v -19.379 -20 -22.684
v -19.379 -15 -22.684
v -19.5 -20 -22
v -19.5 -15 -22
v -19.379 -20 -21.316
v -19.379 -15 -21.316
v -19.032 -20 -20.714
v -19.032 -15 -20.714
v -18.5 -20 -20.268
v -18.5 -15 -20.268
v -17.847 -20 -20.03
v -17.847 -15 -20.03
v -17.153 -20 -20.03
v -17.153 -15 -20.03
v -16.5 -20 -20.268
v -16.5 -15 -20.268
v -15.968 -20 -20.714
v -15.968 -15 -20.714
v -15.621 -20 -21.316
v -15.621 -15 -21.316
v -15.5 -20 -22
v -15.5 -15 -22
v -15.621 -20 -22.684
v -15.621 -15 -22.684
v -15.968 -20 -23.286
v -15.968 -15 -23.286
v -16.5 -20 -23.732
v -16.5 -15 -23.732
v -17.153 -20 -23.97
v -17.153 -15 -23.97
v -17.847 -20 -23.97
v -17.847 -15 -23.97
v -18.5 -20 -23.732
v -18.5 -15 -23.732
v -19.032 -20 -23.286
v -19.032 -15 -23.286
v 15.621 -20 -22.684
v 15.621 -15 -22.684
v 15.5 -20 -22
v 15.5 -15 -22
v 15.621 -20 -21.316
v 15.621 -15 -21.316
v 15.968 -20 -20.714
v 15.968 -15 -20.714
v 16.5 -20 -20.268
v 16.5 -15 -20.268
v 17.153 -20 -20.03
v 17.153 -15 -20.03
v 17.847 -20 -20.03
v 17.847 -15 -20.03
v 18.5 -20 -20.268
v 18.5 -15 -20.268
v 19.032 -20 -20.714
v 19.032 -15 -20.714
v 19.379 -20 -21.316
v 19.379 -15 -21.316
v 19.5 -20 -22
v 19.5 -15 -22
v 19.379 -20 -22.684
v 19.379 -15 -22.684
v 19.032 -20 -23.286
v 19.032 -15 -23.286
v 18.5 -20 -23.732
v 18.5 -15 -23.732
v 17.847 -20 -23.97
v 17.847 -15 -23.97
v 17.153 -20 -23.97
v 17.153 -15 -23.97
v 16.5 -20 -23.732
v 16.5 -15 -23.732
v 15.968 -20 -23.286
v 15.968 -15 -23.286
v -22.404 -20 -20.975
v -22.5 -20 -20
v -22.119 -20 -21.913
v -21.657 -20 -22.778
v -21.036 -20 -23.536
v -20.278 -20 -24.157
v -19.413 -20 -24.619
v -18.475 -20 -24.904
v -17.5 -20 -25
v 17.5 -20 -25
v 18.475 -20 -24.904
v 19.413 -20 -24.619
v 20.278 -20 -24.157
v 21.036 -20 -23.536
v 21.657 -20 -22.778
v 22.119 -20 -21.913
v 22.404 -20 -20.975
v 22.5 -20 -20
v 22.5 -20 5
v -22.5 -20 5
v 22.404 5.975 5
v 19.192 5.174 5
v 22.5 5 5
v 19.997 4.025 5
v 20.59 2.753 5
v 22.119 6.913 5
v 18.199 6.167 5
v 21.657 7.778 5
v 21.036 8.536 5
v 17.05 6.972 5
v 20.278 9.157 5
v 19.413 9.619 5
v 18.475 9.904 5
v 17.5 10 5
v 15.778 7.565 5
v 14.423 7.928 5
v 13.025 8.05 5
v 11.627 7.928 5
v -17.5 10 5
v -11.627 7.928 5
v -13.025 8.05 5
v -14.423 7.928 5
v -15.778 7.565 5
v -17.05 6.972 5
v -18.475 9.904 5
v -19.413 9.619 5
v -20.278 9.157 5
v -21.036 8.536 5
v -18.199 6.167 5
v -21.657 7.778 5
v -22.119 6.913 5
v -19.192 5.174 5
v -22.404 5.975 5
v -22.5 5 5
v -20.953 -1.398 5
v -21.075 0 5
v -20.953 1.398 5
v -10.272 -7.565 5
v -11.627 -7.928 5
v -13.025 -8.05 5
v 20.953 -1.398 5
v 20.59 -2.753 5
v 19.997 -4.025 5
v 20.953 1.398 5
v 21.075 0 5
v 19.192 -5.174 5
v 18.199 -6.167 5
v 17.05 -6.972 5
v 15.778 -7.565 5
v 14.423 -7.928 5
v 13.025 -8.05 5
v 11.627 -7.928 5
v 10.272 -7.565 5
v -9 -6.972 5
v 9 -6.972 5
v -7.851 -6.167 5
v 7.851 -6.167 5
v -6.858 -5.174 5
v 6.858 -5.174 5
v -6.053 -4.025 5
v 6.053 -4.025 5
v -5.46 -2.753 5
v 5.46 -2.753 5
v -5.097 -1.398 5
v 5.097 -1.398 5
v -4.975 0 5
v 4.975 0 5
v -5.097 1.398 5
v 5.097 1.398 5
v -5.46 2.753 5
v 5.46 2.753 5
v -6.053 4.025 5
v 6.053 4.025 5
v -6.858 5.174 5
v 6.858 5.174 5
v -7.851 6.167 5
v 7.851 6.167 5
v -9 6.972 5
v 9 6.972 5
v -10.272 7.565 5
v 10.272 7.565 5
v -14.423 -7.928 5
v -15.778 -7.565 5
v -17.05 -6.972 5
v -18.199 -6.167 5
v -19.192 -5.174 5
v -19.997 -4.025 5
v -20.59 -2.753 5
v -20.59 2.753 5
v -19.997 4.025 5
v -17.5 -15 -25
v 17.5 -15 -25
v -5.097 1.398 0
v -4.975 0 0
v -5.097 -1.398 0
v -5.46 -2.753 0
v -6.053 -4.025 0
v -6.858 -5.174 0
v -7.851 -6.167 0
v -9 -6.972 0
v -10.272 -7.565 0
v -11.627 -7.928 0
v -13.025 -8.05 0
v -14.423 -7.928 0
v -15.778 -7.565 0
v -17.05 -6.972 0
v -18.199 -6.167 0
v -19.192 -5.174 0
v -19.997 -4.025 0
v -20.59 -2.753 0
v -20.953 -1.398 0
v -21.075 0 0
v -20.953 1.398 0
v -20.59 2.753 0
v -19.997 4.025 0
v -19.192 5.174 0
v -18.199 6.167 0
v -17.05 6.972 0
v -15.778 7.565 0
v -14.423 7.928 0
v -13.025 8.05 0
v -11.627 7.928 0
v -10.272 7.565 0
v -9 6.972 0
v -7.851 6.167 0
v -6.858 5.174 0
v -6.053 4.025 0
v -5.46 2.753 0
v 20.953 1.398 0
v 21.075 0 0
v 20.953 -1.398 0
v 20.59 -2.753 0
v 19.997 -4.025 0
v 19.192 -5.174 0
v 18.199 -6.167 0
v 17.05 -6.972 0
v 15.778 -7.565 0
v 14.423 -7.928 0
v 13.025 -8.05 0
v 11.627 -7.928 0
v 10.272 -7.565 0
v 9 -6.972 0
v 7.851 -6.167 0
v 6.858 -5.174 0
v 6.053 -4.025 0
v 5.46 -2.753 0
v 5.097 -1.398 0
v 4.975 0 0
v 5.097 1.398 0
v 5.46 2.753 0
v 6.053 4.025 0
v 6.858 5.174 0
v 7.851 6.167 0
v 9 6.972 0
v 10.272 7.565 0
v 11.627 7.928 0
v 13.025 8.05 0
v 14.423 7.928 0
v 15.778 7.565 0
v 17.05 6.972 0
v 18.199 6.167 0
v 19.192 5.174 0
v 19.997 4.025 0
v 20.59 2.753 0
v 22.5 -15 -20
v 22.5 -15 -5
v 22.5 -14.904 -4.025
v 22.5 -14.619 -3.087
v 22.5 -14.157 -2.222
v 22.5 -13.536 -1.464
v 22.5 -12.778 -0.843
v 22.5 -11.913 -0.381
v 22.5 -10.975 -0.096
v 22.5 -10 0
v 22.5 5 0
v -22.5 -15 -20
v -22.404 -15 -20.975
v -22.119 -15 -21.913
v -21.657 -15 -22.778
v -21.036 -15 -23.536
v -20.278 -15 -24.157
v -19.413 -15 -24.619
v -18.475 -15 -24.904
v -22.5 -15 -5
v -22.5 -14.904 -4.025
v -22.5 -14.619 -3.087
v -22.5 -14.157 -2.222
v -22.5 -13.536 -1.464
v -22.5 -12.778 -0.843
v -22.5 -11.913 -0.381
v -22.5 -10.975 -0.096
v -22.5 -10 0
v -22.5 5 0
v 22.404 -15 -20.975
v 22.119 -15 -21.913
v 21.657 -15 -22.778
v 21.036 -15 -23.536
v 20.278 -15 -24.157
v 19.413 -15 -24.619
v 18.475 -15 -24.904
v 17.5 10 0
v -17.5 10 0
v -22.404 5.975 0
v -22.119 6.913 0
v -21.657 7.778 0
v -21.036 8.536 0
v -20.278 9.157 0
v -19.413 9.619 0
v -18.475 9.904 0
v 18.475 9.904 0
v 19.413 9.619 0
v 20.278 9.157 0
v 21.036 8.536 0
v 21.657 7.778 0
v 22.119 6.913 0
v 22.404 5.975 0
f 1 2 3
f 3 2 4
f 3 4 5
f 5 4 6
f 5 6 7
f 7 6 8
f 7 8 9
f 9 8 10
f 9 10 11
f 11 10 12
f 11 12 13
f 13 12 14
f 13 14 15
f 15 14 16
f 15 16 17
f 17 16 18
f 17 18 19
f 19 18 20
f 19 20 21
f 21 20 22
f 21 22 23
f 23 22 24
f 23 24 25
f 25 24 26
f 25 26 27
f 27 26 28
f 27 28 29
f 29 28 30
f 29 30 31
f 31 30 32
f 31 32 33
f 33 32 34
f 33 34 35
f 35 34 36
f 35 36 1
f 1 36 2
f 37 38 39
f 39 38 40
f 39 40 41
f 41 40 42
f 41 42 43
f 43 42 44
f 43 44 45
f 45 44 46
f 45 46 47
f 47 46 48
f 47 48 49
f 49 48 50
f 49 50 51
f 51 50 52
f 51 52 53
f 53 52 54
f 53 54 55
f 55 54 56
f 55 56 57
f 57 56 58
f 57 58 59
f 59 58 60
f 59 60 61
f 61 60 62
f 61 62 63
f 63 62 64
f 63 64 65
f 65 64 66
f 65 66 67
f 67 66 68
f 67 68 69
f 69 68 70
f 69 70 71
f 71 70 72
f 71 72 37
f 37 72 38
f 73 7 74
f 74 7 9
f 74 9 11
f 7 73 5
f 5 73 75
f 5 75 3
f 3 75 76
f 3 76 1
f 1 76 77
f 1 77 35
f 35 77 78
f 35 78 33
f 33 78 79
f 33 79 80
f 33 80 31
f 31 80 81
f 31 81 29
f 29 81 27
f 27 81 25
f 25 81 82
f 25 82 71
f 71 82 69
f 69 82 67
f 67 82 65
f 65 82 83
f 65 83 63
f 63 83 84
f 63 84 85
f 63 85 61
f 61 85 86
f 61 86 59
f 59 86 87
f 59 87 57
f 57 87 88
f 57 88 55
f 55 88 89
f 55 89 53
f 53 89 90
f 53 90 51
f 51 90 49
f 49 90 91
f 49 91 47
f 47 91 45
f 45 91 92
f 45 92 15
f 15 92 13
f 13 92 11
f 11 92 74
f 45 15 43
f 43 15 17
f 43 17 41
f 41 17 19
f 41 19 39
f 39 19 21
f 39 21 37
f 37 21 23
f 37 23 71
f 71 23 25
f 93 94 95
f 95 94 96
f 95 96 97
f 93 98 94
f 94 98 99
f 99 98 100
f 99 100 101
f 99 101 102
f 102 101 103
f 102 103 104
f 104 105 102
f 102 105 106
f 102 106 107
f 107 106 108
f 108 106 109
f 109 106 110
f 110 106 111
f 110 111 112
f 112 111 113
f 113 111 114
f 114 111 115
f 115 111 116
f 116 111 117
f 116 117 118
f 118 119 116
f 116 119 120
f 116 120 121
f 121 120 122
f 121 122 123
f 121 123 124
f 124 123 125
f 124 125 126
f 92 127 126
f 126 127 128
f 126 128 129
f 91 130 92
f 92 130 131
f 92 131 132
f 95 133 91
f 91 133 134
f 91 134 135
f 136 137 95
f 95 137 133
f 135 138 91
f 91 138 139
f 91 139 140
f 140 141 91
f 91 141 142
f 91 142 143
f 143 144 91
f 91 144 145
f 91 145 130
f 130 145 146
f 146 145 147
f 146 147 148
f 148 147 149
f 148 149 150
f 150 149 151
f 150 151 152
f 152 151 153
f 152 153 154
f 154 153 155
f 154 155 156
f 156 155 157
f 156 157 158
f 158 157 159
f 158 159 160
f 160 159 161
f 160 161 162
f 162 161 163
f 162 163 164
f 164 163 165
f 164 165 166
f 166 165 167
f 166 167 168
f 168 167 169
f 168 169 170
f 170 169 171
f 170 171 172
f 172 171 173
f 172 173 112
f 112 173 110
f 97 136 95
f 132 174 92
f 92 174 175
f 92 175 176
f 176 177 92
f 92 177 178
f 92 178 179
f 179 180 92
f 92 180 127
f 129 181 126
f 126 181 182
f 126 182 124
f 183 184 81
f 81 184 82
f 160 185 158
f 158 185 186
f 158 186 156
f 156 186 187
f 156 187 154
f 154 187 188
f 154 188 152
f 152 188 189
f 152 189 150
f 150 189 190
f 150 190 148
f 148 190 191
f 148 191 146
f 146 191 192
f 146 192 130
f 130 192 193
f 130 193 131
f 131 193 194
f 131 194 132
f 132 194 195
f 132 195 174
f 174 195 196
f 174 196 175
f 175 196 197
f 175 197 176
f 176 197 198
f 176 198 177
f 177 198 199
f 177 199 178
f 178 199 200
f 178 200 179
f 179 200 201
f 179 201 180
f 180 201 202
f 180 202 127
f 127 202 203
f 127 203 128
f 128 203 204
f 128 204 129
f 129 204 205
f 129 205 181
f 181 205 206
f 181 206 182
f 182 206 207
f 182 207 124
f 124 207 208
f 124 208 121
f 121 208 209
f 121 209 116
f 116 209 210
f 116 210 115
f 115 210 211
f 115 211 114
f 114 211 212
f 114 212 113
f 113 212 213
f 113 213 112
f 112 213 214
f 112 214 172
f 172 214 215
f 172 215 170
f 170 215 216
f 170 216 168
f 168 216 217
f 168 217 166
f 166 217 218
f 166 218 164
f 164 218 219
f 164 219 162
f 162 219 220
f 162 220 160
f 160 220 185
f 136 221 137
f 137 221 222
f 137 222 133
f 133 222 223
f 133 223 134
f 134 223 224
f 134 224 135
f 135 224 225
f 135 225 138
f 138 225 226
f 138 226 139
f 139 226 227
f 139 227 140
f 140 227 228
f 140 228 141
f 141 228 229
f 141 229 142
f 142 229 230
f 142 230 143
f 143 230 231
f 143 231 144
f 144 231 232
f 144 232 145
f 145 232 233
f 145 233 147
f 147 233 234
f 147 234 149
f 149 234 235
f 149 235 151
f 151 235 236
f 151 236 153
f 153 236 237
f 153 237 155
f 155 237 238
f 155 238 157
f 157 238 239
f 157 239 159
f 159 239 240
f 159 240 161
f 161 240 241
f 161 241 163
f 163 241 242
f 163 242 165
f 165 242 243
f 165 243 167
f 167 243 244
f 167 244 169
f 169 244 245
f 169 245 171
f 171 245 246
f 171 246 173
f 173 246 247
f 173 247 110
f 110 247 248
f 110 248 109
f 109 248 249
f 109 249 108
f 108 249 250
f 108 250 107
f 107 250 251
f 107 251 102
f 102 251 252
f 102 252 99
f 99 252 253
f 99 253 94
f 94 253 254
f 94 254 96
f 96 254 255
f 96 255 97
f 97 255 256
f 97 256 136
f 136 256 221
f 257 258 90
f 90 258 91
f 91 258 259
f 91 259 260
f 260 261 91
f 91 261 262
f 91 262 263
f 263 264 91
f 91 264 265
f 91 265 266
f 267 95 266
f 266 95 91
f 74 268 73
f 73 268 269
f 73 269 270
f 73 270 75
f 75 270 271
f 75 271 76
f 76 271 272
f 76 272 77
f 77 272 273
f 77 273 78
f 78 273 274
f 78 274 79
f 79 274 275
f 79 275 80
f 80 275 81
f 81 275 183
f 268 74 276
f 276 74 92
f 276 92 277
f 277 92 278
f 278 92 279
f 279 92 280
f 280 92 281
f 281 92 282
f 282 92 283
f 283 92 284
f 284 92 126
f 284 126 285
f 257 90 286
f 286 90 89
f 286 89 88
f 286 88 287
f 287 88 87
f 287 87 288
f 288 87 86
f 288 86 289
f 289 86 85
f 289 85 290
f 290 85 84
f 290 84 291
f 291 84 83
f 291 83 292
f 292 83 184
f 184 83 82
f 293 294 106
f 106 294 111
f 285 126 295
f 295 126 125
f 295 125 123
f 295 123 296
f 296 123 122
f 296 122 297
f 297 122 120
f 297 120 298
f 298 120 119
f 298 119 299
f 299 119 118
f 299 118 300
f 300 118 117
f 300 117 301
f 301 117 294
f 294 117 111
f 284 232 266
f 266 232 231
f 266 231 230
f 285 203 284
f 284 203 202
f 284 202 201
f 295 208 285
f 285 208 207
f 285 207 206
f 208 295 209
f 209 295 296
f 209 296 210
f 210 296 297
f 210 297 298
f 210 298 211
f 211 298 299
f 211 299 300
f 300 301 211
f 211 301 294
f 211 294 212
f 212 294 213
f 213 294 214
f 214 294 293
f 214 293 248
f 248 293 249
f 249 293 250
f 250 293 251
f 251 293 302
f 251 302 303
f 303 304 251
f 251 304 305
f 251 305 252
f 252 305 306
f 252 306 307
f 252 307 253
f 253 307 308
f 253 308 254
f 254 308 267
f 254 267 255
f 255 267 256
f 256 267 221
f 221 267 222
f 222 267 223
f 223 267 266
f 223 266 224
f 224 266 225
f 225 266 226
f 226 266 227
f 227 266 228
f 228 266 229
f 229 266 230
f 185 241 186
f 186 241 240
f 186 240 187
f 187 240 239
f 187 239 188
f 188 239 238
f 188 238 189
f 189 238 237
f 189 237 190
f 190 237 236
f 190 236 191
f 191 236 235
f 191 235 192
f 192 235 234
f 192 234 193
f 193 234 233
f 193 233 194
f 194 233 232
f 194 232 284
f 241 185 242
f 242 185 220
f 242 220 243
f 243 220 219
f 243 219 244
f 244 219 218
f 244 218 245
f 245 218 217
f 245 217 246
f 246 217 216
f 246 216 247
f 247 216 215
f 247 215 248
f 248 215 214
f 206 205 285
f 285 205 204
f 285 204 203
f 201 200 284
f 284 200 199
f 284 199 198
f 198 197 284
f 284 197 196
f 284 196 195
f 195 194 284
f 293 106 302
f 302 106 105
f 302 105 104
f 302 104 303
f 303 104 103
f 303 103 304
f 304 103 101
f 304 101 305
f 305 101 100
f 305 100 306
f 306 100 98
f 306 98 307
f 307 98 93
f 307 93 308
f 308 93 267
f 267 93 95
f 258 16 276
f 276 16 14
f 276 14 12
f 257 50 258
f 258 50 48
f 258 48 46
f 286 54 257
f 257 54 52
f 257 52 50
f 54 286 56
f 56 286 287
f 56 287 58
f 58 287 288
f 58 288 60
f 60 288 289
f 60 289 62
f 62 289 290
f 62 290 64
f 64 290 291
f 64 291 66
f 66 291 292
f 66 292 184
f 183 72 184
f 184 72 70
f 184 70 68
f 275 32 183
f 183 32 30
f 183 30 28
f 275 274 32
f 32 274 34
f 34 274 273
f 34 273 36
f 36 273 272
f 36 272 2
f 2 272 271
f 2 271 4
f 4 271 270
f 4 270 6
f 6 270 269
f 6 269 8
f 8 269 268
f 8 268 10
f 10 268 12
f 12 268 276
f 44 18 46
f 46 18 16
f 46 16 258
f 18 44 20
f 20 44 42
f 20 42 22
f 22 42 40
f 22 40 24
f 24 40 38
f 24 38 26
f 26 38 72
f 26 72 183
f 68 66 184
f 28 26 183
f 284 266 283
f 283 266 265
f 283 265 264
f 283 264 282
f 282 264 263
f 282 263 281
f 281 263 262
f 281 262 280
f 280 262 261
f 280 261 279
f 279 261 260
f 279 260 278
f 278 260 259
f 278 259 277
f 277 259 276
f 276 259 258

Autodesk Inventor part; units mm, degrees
ref_plane "YZ Plane" through (0, 0, 0) normal (1, 0, 0) x (0, 1, 0)
ref_plane "XZ Plane" through (0, 0, 0) normal (0, 1, 0) x (-1, 0, 0)
ref_plane "XY Plane" through (0, 0, 0) normal (0, 0, 1) x (1, 0, 0)
sketch "Náčrt1" plane through (0, 0, 0) normal (0, 0, 1) x (1, 0, 0)
  circle A0 centre (13.025, 0) radius 8.05
  circle A1 centre (-13.025, 0) radius 8.05
  line L0 (22.5, 0) -> (22.5, 10)
  line L1 (22.5, 10) -> (-22.5, 10)
  line L2 (-22.5, 10) -> (-22.5, -20)
  line L3 (-22.5, -20) -> (22.5, -20)
  line L4 (22.5, -20) -> (22.5, 0)
  point P0 (0, 0)
  point P1 (0, 0)
  dimension "d2" = 16.1
  dimension "d5" = 10
  dimension "d6" = 30
  dimension "d18" = 16.1
extrude "Vysunutí1" add sketch "Náčrt1" along normal blind 5
sketch "Náčrt2" plane through (0, 0, 0) normal (0, 0, -1) x (-1, 0, 0)
  line L0 (-22.5, -20) -> (-22.5, 10) projected
  line L1 (-22.5, -20) -> (22.5, -20)
  line L2 (22.5, -20) -> (22.5, -15)
  line L3 (22.5, -15) -> (-22.5, -15)
  line L4 (-22.5, -15) -> (-22.5, -20)
  point P0 (0, 0)
  dimension "d9" = 45
  dimension "d10" = 5
extrude "Vysunutí2" add sketch "Náčrt2" along normal blind 25
sketch "Náčrt3" plane through (-22.5, -15, 0) normal (0, 1, 0) x (1, 0, 0)
  circle A0 centre (40, 22) radius 2
  line L0 (45, 0) -> (45, 25) projected
  line L1 (0, 25) -> (45, 25) projected
  line L2 (22.5, 25) -> (22.5, 18.3064)
  circle A1 centre (5, 22) radius 2
  point P0 (22.5, 0)
  dimension "d13" = 4
  dimension "d14" = 5
  dimension "d15" = 3
extrude "Vysunutí3" cut sketch "Náčrt3" against normal blind 25
fillet "Zaoblení1" radius 5 4 edges at (-22.5, 10, 2.5) (22.5, 10, 2.5) (22.5, -17.5, -25) (-22.5, -17.5, -25)
fillet "Zaoblení2" radius 5 1 edges at (0, -15, 0)
properties part number "distance sensor"
